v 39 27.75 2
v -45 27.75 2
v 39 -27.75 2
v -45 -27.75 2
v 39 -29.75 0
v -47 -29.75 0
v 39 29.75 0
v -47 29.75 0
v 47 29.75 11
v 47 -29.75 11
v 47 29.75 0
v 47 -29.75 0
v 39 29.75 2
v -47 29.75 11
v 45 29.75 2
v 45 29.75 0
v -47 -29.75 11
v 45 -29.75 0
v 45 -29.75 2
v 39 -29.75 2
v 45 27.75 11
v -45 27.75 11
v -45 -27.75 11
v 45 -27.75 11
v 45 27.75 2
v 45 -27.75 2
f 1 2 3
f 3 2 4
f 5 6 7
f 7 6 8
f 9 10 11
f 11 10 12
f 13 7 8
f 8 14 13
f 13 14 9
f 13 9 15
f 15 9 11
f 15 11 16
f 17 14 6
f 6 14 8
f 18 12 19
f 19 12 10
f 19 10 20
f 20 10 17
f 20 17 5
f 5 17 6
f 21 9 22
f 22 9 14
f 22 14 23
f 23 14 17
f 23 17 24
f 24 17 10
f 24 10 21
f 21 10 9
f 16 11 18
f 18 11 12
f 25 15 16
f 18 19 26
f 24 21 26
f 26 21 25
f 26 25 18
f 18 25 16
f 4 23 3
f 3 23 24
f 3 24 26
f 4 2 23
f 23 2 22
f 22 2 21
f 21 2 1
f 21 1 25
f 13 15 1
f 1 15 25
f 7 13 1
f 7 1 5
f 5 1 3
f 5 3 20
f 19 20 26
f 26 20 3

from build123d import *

# Parameters (mm, degrees)
SKETCH2_W           = 94
SKETCH2_H           = 59.5
BOSS_EXTRUDE1_DEPTH = 11
SKETCH3_W           = 90
SKETCH3_H           = 55.5
CUT_EXTRUDE1_DEPTH  = 9
SKETCH5_W           = 6
SKETCH5_H           = 59.5
CUT_EXTRUDE2_DEPTH  = 2


with BuildPart() as part:
    # Sketch2 → Boss-Extrude1 (new body)
    with BuildSketch(Plane.XY):
        Rectangle(SKETCH2_W, SKETCH2_H)
    extrude(amount=BOSS_EXTRUDE1_DEPTH)

    # Sketch3 → Cut-Extrude1 (cut)
    with BuildSketch(Plane.XY.offset(11)):
        Rectangle(SKETCH3_W, SKETCH3_H)
    extrude(amount=-CUT_EXTRUDE1_DEPTH, mode=Mode.SUBTRACT)

    # Sketch5 → Cut-Extrude2 (cut)
    with BuildSketch(Plane(origin=(0, 0, 0), x_dir=(-1, 0, 0), z_dir=(0, 0, -1))):
        with Locations((-42, 0)):
            Rectangle(SKETCH5_W, SKETCH5_H)
    extrude(amount=-CUT_EXTRUDE2_DEPTH, mode=Mode.SUBTRACT)


solid = part.part
